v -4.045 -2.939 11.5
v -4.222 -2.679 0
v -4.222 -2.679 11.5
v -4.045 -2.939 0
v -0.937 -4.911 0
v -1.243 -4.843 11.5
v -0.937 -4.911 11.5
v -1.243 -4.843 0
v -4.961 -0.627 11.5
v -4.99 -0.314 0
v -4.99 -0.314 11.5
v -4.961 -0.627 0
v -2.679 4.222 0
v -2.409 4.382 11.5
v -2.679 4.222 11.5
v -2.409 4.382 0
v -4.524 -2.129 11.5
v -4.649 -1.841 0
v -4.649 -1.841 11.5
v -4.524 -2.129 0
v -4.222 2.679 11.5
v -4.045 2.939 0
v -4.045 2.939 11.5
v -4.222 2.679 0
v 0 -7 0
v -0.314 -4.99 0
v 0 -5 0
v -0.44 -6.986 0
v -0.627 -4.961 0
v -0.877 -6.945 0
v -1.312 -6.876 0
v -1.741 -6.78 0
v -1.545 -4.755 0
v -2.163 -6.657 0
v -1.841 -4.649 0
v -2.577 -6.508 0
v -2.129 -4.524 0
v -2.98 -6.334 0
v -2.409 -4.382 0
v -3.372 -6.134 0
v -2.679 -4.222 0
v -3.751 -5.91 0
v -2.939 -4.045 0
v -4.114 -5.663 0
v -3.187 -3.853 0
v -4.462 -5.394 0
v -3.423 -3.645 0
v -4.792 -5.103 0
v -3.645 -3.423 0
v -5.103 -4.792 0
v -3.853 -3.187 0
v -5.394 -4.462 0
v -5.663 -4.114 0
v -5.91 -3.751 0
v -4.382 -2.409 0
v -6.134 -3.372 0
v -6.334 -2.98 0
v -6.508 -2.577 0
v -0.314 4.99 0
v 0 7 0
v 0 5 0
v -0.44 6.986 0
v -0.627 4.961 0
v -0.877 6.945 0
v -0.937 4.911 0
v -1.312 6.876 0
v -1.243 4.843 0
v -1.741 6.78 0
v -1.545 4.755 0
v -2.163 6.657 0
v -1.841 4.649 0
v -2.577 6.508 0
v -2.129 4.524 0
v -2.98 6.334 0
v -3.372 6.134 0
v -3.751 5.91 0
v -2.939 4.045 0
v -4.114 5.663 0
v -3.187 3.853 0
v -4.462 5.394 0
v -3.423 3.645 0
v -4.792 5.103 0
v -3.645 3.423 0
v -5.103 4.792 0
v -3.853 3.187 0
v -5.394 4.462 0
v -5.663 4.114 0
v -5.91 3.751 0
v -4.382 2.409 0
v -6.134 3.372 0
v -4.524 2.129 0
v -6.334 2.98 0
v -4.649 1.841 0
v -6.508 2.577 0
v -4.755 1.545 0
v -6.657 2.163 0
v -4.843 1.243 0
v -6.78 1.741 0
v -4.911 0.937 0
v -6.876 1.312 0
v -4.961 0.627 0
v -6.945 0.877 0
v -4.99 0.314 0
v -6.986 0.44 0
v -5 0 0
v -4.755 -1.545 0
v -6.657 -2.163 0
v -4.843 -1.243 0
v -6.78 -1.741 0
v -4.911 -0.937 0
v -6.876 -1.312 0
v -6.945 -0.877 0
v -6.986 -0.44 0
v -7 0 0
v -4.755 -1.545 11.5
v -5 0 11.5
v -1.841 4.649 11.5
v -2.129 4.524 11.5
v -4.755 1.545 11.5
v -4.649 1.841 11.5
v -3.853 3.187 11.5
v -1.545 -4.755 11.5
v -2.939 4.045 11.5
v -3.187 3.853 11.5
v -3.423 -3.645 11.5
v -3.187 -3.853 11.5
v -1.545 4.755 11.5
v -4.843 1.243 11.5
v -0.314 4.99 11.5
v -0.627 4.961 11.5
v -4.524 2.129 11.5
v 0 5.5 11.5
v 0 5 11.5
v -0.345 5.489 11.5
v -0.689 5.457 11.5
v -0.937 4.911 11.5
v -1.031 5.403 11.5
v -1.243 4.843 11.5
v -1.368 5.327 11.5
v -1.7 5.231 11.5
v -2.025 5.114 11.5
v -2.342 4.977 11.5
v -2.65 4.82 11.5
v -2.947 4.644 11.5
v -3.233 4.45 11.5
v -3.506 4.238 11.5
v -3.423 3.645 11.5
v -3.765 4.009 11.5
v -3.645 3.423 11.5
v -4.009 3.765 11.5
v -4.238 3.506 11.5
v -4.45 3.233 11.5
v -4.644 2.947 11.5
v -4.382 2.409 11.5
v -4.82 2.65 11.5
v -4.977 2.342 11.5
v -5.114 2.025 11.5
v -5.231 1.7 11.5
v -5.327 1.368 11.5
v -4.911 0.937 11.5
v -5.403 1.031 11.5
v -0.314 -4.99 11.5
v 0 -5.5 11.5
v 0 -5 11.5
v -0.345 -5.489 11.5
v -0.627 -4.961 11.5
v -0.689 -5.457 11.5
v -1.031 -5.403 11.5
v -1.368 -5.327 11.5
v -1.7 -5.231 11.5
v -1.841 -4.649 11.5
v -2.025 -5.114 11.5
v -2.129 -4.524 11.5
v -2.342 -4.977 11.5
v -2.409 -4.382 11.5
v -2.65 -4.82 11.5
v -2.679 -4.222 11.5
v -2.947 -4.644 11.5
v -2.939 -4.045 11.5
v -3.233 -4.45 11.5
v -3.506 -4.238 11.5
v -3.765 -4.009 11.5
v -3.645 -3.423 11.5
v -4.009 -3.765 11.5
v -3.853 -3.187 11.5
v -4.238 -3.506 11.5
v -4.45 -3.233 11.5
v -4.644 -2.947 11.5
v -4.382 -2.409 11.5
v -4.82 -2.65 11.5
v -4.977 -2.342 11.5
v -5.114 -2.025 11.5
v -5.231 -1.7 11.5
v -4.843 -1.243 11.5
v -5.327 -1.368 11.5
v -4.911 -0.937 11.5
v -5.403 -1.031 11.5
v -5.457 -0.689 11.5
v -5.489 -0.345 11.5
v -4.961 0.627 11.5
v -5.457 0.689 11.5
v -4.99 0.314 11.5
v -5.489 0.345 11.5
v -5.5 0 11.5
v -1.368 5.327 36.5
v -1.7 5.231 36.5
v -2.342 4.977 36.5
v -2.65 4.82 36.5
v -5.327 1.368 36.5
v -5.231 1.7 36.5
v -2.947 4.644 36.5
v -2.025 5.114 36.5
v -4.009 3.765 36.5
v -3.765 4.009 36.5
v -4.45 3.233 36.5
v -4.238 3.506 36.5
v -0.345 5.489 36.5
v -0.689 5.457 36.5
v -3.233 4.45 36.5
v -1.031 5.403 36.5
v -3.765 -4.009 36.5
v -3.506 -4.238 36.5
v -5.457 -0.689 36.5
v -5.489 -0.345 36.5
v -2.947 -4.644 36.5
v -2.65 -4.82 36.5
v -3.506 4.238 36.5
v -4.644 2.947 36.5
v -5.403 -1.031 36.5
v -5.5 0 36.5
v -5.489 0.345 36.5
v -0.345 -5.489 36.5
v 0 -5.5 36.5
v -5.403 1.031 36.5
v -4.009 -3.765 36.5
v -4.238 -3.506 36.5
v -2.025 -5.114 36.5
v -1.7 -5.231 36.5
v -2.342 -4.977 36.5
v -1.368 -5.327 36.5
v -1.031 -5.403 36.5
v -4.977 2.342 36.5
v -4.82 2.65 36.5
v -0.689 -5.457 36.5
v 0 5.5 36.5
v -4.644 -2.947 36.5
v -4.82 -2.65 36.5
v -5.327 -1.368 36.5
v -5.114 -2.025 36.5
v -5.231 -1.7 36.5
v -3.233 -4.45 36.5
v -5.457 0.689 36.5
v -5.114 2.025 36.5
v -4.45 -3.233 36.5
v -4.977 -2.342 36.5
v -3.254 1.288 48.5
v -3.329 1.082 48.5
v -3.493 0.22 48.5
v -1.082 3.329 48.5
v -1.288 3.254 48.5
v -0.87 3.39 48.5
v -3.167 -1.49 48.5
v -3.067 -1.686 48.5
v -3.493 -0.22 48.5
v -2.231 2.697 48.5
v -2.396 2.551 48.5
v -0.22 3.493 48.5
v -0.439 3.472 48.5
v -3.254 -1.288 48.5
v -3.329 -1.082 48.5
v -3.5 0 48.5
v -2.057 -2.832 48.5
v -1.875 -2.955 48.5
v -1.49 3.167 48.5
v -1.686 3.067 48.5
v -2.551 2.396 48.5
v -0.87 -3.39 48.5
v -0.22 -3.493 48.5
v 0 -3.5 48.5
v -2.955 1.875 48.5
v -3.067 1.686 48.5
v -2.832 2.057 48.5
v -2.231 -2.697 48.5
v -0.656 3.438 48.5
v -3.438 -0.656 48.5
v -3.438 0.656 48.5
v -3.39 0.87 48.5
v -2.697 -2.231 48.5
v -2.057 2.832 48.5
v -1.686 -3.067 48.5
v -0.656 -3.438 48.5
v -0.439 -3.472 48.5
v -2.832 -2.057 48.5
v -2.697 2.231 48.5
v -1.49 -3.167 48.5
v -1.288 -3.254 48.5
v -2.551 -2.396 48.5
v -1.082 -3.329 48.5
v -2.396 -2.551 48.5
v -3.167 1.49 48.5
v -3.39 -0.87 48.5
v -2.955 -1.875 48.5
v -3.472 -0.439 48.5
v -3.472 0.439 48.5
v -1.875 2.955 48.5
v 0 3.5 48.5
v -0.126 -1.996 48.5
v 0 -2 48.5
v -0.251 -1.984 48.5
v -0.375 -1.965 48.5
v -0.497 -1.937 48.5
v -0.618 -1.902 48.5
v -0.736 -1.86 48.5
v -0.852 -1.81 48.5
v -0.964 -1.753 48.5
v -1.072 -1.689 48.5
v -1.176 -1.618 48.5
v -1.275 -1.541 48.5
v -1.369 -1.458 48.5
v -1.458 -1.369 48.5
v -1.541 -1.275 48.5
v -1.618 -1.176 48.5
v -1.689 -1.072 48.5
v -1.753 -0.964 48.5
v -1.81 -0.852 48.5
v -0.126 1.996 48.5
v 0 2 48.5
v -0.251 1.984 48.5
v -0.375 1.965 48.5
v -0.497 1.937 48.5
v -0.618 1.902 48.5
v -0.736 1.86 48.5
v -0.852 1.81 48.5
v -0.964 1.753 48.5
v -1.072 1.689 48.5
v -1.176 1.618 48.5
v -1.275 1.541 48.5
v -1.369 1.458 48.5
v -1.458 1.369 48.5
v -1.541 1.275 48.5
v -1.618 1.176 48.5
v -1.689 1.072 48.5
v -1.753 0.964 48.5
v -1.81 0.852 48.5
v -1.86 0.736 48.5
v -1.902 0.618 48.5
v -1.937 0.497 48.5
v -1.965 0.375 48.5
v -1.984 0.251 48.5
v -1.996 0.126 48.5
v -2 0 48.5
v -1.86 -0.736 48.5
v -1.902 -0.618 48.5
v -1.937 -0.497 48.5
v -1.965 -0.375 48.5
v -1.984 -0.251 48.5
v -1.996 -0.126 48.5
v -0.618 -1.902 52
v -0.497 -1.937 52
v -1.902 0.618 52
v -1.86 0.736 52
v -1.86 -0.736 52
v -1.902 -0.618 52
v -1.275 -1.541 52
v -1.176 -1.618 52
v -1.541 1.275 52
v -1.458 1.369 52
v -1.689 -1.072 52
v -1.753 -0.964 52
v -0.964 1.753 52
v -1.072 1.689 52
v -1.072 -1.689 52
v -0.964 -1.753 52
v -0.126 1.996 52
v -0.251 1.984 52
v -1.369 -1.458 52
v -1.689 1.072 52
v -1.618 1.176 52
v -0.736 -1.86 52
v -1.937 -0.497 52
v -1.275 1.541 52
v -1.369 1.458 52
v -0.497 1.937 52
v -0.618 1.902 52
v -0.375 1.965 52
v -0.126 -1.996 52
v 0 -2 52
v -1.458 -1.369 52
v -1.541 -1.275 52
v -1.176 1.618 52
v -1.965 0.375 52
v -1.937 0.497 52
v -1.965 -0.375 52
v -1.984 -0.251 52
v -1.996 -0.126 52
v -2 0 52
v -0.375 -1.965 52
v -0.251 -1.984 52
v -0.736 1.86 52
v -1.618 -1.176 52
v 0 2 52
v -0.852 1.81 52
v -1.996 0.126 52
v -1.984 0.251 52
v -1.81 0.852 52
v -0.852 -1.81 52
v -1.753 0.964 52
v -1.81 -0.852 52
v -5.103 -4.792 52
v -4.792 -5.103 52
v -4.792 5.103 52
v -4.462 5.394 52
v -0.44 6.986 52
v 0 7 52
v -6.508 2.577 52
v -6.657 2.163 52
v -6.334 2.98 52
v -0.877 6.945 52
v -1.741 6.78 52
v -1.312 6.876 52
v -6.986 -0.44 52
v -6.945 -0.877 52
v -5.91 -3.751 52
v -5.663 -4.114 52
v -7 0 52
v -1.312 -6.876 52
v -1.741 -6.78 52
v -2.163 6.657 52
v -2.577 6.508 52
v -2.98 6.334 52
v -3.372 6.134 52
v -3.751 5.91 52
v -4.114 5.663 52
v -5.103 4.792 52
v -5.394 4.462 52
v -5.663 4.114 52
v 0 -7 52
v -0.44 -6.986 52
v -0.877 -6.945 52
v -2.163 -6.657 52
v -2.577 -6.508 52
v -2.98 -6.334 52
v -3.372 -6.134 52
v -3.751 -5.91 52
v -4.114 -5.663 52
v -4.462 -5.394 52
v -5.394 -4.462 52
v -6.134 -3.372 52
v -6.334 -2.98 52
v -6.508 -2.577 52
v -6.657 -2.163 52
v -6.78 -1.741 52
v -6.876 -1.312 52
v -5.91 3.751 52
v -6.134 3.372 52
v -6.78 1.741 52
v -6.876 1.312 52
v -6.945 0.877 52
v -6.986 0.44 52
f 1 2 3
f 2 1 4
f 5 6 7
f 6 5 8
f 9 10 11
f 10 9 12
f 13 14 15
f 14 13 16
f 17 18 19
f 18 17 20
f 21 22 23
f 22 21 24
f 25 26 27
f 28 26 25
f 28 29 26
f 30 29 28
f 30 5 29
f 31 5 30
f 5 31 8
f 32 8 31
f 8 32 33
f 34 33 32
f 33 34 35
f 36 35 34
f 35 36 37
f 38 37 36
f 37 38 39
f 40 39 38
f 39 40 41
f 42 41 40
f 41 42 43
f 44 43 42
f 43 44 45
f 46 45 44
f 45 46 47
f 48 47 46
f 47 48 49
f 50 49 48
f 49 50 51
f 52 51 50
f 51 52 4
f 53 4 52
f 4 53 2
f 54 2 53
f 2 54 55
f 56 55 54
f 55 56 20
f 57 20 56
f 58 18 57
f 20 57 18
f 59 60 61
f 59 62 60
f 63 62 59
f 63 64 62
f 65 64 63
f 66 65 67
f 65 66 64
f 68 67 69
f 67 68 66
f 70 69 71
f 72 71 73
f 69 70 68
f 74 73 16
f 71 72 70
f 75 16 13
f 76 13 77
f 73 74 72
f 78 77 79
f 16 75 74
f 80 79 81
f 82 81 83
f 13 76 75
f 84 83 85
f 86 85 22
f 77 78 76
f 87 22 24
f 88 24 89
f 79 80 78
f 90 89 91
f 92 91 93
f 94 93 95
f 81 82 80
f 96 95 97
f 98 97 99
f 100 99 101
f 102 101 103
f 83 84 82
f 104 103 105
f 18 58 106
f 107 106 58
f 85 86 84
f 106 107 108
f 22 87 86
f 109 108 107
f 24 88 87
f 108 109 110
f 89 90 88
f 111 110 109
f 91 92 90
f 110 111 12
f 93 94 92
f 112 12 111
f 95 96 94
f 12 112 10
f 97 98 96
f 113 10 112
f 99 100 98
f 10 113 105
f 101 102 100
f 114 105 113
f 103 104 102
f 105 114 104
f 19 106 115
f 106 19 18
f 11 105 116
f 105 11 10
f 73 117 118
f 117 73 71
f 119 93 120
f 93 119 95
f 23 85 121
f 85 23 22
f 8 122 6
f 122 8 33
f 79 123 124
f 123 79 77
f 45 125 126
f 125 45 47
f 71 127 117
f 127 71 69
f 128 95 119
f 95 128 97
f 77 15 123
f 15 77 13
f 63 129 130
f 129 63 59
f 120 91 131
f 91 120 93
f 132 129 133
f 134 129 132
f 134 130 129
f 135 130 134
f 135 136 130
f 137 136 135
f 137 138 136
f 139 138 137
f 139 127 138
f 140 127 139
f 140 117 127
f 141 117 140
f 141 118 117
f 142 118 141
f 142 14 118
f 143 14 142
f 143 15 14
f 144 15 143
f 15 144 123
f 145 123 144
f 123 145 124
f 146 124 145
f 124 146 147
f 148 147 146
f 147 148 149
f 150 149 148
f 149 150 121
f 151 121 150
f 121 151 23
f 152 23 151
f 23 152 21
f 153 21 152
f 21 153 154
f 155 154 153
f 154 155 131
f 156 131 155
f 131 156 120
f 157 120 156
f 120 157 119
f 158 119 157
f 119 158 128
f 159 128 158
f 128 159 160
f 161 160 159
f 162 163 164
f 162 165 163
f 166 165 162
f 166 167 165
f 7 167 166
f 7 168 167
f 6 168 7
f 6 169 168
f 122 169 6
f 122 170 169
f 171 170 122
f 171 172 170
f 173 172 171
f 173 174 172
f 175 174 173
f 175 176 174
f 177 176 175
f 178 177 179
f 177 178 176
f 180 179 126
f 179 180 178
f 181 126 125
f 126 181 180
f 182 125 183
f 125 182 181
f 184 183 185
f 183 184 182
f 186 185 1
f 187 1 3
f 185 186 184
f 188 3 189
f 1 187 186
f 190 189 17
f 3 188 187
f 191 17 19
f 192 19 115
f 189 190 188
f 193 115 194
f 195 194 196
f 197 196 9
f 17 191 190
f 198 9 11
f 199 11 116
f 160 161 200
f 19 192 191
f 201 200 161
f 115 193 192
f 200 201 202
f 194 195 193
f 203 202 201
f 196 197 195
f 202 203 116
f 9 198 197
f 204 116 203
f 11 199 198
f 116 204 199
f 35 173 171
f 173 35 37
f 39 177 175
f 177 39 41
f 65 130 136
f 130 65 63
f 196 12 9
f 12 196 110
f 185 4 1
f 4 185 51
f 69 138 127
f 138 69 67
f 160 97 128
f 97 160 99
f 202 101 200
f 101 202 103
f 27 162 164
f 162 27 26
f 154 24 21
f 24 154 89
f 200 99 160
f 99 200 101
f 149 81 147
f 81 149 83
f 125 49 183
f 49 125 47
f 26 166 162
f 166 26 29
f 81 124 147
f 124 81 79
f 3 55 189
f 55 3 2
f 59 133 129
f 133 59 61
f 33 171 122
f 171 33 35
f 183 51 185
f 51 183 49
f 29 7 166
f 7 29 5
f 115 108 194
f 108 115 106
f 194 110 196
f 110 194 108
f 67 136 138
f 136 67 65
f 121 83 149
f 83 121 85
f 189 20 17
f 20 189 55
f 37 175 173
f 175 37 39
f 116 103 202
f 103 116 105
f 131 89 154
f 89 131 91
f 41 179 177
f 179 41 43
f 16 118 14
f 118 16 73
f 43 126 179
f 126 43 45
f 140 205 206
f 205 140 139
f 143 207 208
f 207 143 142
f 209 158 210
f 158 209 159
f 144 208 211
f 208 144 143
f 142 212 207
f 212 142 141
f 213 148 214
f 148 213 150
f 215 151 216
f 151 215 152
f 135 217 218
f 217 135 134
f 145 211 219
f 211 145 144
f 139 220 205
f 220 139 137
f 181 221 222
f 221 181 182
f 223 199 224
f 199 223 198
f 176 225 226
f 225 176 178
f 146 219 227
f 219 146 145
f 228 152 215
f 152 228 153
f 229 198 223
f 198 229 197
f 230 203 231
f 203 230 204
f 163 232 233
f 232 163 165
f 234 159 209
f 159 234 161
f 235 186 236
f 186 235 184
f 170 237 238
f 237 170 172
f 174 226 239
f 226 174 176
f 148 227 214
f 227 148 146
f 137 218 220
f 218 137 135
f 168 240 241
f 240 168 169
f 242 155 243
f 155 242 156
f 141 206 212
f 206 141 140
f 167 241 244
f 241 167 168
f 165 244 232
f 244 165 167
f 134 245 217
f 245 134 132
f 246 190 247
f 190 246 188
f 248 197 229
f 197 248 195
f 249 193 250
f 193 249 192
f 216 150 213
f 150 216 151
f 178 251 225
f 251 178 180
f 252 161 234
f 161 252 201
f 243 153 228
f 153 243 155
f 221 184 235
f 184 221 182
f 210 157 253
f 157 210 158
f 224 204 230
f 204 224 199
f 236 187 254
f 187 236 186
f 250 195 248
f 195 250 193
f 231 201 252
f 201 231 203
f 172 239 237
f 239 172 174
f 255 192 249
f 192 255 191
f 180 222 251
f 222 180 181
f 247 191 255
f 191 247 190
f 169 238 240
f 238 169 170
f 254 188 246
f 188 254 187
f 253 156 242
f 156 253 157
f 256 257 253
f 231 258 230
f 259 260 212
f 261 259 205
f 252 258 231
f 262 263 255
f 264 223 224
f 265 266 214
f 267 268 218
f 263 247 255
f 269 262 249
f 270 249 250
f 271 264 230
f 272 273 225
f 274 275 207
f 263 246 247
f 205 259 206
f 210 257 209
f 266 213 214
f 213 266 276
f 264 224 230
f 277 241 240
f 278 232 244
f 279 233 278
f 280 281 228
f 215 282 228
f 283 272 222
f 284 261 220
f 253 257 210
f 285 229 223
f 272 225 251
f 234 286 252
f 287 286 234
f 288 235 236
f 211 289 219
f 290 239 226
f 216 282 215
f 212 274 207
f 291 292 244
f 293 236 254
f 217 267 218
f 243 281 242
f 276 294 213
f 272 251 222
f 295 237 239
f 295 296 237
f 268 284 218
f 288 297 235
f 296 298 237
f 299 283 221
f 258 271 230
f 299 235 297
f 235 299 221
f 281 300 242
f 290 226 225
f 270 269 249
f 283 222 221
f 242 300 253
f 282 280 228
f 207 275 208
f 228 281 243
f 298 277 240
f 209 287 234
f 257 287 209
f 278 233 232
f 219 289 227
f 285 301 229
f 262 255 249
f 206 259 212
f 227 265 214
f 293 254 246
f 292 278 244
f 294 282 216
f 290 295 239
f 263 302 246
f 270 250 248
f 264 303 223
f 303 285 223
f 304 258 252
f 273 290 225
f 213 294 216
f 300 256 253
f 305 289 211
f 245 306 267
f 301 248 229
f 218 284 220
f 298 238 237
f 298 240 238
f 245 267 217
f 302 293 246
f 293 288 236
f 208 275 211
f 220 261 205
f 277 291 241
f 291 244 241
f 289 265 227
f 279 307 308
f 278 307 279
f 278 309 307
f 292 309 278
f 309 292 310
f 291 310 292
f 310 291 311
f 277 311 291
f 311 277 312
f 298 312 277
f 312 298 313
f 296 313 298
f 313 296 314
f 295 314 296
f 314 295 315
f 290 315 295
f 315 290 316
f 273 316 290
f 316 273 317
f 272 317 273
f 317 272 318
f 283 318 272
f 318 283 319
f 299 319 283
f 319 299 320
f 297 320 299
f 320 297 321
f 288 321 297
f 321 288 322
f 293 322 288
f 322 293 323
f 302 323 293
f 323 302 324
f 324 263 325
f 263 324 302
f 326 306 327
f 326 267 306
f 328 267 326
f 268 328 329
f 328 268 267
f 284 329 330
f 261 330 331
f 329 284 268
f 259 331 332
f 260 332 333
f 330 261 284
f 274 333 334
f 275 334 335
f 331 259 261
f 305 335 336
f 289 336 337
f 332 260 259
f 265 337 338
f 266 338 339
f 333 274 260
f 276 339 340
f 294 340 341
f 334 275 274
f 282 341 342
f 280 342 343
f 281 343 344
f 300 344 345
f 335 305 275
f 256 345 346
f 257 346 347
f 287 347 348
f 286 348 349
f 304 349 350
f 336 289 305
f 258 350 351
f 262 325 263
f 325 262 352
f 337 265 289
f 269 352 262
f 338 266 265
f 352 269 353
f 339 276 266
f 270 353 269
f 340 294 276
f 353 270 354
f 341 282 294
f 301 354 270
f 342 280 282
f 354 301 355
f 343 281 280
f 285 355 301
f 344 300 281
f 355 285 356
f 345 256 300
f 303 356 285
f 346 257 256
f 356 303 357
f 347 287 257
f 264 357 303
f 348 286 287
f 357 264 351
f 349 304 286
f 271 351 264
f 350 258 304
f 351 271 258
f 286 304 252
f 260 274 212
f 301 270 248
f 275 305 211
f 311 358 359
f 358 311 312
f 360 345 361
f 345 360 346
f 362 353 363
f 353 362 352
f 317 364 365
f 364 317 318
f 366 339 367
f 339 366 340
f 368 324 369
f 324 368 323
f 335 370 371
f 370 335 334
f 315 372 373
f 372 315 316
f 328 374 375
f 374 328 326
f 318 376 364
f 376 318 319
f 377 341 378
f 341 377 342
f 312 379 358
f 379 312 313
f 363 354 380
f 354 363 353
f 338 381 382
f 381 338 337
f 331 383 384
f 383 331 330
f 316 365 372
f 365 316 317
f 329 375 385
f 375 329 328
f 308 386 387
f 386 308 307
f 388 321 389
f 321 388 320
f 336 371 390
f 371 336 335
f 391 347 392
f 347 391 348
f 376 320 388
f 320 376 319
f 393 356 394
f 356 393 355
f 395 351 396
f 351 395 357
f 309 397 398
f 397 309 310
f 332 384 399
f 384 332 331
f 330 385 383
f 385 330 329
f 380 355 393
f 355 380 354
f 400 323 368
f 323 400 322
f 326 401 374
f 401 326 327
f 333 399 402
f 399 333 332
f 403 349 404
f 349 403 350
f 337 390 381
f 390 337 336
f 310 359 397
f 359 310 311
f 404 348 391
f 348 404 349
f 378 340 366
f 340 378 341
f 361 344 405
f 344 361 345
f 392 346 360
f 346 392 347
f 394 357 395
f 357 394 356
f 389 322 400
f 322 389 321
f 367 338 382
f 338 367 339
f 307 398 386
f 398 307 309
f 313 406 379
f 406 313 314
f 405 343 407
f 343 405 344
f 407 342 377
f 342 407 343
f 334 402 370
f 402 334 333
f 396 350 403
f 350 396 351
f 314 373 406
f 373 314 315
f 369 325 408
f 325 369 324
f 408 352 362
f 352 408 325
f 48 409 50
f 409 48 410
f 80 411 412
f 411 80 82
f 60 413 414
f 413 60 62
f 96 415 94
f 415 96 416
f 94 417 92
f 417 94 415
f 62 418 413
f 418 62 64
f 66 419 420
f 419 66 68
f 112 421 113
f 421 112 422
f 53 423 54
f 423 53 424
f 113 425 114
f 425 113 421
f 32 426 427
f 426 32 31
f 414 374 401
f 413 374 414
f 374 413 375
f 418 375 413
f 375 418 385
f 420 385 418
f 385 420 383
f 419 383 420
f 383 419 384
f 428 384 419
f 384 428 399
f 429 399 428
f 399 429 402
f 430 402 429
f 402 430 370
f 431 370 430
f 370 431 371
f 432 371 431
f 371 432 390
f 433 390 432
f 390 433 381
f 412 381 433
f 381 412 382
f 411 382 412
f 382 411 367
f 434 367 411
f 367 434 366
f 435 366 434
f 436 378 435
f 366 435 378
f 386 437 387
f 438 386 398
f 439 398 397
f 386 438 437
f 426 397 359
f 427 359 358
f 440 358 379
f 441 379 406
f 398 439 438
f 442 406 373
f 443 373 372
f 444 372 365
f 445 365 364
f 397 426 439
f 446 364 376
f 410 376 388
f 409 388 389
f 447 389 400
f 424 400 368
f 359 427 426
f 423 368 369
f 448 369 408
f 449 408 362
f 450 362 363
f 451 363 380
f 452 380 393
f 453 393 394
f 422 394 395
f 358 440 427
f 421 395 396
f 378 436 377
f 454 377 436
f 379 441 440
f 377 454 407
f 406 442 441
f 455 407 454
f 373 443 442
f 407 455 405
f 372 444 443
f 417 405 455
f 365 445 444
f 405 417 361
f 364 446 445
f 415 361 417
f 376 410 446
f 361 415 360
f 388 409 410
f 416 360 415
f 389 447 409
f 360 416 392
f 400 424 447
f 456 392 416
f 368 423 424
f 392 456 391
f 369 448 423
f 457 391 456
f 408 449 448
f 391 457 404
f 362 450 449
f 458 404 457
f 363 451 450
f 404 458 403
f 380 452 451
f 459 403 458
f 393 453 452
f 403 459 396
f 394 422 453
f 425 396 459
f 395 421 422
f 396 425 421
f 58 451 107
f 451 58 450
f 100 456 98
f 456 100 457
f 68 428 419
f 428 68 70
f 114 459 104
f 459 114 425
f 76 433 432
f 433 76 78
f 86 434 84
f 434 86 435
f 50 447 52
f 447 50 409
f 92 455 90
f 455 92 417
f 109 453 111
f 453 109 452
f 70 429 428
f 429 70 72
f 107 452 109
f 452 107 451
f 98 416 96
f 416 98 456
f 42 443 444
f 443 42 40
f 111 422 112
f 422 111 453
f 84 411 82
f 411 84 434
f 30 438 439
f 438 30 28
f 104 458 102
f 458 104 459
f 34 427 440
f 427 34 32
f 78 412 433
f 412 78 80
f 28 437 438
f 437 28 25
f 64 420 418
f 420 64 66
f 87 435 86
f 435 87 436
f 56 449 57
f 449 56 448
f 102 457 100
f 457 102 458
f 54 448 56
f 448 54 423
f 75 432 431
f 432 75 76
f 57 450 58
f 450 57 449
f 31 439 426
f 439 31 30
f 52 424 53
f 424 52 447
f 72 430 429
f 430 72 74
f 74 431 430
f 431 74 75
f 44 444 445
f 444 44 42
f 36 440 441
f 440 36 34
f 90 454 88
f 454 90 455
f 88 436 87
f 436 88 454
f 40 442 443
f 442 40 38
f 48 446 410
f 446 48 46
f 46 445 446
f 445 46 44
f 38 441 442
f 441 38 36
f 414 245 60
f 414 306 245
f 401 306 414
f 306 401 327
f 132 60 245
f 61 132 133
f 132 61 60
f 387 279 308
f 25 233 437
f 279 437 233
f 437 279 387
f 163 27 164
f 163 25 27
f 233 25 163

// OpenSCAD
$fn=100;

module inlay() {
    cylinder(h=11.5, r=5);
    translate([0,0,11.5]) cylinder(h=25, r=5.5);
    translate([0,0,36.5]) cylinder(h=12, r1=5.5, r2=3.5);
    translate([0,0,48.5]) cylinder(h=11, r=2);
}

module handle() {
    difference() {    
        cylinder(h=52,r=7);
        inlay();
    }
}

//inlay();
difference() {
    handle();
    translate([0,-7,0]) cube([7,14,55]);
}
